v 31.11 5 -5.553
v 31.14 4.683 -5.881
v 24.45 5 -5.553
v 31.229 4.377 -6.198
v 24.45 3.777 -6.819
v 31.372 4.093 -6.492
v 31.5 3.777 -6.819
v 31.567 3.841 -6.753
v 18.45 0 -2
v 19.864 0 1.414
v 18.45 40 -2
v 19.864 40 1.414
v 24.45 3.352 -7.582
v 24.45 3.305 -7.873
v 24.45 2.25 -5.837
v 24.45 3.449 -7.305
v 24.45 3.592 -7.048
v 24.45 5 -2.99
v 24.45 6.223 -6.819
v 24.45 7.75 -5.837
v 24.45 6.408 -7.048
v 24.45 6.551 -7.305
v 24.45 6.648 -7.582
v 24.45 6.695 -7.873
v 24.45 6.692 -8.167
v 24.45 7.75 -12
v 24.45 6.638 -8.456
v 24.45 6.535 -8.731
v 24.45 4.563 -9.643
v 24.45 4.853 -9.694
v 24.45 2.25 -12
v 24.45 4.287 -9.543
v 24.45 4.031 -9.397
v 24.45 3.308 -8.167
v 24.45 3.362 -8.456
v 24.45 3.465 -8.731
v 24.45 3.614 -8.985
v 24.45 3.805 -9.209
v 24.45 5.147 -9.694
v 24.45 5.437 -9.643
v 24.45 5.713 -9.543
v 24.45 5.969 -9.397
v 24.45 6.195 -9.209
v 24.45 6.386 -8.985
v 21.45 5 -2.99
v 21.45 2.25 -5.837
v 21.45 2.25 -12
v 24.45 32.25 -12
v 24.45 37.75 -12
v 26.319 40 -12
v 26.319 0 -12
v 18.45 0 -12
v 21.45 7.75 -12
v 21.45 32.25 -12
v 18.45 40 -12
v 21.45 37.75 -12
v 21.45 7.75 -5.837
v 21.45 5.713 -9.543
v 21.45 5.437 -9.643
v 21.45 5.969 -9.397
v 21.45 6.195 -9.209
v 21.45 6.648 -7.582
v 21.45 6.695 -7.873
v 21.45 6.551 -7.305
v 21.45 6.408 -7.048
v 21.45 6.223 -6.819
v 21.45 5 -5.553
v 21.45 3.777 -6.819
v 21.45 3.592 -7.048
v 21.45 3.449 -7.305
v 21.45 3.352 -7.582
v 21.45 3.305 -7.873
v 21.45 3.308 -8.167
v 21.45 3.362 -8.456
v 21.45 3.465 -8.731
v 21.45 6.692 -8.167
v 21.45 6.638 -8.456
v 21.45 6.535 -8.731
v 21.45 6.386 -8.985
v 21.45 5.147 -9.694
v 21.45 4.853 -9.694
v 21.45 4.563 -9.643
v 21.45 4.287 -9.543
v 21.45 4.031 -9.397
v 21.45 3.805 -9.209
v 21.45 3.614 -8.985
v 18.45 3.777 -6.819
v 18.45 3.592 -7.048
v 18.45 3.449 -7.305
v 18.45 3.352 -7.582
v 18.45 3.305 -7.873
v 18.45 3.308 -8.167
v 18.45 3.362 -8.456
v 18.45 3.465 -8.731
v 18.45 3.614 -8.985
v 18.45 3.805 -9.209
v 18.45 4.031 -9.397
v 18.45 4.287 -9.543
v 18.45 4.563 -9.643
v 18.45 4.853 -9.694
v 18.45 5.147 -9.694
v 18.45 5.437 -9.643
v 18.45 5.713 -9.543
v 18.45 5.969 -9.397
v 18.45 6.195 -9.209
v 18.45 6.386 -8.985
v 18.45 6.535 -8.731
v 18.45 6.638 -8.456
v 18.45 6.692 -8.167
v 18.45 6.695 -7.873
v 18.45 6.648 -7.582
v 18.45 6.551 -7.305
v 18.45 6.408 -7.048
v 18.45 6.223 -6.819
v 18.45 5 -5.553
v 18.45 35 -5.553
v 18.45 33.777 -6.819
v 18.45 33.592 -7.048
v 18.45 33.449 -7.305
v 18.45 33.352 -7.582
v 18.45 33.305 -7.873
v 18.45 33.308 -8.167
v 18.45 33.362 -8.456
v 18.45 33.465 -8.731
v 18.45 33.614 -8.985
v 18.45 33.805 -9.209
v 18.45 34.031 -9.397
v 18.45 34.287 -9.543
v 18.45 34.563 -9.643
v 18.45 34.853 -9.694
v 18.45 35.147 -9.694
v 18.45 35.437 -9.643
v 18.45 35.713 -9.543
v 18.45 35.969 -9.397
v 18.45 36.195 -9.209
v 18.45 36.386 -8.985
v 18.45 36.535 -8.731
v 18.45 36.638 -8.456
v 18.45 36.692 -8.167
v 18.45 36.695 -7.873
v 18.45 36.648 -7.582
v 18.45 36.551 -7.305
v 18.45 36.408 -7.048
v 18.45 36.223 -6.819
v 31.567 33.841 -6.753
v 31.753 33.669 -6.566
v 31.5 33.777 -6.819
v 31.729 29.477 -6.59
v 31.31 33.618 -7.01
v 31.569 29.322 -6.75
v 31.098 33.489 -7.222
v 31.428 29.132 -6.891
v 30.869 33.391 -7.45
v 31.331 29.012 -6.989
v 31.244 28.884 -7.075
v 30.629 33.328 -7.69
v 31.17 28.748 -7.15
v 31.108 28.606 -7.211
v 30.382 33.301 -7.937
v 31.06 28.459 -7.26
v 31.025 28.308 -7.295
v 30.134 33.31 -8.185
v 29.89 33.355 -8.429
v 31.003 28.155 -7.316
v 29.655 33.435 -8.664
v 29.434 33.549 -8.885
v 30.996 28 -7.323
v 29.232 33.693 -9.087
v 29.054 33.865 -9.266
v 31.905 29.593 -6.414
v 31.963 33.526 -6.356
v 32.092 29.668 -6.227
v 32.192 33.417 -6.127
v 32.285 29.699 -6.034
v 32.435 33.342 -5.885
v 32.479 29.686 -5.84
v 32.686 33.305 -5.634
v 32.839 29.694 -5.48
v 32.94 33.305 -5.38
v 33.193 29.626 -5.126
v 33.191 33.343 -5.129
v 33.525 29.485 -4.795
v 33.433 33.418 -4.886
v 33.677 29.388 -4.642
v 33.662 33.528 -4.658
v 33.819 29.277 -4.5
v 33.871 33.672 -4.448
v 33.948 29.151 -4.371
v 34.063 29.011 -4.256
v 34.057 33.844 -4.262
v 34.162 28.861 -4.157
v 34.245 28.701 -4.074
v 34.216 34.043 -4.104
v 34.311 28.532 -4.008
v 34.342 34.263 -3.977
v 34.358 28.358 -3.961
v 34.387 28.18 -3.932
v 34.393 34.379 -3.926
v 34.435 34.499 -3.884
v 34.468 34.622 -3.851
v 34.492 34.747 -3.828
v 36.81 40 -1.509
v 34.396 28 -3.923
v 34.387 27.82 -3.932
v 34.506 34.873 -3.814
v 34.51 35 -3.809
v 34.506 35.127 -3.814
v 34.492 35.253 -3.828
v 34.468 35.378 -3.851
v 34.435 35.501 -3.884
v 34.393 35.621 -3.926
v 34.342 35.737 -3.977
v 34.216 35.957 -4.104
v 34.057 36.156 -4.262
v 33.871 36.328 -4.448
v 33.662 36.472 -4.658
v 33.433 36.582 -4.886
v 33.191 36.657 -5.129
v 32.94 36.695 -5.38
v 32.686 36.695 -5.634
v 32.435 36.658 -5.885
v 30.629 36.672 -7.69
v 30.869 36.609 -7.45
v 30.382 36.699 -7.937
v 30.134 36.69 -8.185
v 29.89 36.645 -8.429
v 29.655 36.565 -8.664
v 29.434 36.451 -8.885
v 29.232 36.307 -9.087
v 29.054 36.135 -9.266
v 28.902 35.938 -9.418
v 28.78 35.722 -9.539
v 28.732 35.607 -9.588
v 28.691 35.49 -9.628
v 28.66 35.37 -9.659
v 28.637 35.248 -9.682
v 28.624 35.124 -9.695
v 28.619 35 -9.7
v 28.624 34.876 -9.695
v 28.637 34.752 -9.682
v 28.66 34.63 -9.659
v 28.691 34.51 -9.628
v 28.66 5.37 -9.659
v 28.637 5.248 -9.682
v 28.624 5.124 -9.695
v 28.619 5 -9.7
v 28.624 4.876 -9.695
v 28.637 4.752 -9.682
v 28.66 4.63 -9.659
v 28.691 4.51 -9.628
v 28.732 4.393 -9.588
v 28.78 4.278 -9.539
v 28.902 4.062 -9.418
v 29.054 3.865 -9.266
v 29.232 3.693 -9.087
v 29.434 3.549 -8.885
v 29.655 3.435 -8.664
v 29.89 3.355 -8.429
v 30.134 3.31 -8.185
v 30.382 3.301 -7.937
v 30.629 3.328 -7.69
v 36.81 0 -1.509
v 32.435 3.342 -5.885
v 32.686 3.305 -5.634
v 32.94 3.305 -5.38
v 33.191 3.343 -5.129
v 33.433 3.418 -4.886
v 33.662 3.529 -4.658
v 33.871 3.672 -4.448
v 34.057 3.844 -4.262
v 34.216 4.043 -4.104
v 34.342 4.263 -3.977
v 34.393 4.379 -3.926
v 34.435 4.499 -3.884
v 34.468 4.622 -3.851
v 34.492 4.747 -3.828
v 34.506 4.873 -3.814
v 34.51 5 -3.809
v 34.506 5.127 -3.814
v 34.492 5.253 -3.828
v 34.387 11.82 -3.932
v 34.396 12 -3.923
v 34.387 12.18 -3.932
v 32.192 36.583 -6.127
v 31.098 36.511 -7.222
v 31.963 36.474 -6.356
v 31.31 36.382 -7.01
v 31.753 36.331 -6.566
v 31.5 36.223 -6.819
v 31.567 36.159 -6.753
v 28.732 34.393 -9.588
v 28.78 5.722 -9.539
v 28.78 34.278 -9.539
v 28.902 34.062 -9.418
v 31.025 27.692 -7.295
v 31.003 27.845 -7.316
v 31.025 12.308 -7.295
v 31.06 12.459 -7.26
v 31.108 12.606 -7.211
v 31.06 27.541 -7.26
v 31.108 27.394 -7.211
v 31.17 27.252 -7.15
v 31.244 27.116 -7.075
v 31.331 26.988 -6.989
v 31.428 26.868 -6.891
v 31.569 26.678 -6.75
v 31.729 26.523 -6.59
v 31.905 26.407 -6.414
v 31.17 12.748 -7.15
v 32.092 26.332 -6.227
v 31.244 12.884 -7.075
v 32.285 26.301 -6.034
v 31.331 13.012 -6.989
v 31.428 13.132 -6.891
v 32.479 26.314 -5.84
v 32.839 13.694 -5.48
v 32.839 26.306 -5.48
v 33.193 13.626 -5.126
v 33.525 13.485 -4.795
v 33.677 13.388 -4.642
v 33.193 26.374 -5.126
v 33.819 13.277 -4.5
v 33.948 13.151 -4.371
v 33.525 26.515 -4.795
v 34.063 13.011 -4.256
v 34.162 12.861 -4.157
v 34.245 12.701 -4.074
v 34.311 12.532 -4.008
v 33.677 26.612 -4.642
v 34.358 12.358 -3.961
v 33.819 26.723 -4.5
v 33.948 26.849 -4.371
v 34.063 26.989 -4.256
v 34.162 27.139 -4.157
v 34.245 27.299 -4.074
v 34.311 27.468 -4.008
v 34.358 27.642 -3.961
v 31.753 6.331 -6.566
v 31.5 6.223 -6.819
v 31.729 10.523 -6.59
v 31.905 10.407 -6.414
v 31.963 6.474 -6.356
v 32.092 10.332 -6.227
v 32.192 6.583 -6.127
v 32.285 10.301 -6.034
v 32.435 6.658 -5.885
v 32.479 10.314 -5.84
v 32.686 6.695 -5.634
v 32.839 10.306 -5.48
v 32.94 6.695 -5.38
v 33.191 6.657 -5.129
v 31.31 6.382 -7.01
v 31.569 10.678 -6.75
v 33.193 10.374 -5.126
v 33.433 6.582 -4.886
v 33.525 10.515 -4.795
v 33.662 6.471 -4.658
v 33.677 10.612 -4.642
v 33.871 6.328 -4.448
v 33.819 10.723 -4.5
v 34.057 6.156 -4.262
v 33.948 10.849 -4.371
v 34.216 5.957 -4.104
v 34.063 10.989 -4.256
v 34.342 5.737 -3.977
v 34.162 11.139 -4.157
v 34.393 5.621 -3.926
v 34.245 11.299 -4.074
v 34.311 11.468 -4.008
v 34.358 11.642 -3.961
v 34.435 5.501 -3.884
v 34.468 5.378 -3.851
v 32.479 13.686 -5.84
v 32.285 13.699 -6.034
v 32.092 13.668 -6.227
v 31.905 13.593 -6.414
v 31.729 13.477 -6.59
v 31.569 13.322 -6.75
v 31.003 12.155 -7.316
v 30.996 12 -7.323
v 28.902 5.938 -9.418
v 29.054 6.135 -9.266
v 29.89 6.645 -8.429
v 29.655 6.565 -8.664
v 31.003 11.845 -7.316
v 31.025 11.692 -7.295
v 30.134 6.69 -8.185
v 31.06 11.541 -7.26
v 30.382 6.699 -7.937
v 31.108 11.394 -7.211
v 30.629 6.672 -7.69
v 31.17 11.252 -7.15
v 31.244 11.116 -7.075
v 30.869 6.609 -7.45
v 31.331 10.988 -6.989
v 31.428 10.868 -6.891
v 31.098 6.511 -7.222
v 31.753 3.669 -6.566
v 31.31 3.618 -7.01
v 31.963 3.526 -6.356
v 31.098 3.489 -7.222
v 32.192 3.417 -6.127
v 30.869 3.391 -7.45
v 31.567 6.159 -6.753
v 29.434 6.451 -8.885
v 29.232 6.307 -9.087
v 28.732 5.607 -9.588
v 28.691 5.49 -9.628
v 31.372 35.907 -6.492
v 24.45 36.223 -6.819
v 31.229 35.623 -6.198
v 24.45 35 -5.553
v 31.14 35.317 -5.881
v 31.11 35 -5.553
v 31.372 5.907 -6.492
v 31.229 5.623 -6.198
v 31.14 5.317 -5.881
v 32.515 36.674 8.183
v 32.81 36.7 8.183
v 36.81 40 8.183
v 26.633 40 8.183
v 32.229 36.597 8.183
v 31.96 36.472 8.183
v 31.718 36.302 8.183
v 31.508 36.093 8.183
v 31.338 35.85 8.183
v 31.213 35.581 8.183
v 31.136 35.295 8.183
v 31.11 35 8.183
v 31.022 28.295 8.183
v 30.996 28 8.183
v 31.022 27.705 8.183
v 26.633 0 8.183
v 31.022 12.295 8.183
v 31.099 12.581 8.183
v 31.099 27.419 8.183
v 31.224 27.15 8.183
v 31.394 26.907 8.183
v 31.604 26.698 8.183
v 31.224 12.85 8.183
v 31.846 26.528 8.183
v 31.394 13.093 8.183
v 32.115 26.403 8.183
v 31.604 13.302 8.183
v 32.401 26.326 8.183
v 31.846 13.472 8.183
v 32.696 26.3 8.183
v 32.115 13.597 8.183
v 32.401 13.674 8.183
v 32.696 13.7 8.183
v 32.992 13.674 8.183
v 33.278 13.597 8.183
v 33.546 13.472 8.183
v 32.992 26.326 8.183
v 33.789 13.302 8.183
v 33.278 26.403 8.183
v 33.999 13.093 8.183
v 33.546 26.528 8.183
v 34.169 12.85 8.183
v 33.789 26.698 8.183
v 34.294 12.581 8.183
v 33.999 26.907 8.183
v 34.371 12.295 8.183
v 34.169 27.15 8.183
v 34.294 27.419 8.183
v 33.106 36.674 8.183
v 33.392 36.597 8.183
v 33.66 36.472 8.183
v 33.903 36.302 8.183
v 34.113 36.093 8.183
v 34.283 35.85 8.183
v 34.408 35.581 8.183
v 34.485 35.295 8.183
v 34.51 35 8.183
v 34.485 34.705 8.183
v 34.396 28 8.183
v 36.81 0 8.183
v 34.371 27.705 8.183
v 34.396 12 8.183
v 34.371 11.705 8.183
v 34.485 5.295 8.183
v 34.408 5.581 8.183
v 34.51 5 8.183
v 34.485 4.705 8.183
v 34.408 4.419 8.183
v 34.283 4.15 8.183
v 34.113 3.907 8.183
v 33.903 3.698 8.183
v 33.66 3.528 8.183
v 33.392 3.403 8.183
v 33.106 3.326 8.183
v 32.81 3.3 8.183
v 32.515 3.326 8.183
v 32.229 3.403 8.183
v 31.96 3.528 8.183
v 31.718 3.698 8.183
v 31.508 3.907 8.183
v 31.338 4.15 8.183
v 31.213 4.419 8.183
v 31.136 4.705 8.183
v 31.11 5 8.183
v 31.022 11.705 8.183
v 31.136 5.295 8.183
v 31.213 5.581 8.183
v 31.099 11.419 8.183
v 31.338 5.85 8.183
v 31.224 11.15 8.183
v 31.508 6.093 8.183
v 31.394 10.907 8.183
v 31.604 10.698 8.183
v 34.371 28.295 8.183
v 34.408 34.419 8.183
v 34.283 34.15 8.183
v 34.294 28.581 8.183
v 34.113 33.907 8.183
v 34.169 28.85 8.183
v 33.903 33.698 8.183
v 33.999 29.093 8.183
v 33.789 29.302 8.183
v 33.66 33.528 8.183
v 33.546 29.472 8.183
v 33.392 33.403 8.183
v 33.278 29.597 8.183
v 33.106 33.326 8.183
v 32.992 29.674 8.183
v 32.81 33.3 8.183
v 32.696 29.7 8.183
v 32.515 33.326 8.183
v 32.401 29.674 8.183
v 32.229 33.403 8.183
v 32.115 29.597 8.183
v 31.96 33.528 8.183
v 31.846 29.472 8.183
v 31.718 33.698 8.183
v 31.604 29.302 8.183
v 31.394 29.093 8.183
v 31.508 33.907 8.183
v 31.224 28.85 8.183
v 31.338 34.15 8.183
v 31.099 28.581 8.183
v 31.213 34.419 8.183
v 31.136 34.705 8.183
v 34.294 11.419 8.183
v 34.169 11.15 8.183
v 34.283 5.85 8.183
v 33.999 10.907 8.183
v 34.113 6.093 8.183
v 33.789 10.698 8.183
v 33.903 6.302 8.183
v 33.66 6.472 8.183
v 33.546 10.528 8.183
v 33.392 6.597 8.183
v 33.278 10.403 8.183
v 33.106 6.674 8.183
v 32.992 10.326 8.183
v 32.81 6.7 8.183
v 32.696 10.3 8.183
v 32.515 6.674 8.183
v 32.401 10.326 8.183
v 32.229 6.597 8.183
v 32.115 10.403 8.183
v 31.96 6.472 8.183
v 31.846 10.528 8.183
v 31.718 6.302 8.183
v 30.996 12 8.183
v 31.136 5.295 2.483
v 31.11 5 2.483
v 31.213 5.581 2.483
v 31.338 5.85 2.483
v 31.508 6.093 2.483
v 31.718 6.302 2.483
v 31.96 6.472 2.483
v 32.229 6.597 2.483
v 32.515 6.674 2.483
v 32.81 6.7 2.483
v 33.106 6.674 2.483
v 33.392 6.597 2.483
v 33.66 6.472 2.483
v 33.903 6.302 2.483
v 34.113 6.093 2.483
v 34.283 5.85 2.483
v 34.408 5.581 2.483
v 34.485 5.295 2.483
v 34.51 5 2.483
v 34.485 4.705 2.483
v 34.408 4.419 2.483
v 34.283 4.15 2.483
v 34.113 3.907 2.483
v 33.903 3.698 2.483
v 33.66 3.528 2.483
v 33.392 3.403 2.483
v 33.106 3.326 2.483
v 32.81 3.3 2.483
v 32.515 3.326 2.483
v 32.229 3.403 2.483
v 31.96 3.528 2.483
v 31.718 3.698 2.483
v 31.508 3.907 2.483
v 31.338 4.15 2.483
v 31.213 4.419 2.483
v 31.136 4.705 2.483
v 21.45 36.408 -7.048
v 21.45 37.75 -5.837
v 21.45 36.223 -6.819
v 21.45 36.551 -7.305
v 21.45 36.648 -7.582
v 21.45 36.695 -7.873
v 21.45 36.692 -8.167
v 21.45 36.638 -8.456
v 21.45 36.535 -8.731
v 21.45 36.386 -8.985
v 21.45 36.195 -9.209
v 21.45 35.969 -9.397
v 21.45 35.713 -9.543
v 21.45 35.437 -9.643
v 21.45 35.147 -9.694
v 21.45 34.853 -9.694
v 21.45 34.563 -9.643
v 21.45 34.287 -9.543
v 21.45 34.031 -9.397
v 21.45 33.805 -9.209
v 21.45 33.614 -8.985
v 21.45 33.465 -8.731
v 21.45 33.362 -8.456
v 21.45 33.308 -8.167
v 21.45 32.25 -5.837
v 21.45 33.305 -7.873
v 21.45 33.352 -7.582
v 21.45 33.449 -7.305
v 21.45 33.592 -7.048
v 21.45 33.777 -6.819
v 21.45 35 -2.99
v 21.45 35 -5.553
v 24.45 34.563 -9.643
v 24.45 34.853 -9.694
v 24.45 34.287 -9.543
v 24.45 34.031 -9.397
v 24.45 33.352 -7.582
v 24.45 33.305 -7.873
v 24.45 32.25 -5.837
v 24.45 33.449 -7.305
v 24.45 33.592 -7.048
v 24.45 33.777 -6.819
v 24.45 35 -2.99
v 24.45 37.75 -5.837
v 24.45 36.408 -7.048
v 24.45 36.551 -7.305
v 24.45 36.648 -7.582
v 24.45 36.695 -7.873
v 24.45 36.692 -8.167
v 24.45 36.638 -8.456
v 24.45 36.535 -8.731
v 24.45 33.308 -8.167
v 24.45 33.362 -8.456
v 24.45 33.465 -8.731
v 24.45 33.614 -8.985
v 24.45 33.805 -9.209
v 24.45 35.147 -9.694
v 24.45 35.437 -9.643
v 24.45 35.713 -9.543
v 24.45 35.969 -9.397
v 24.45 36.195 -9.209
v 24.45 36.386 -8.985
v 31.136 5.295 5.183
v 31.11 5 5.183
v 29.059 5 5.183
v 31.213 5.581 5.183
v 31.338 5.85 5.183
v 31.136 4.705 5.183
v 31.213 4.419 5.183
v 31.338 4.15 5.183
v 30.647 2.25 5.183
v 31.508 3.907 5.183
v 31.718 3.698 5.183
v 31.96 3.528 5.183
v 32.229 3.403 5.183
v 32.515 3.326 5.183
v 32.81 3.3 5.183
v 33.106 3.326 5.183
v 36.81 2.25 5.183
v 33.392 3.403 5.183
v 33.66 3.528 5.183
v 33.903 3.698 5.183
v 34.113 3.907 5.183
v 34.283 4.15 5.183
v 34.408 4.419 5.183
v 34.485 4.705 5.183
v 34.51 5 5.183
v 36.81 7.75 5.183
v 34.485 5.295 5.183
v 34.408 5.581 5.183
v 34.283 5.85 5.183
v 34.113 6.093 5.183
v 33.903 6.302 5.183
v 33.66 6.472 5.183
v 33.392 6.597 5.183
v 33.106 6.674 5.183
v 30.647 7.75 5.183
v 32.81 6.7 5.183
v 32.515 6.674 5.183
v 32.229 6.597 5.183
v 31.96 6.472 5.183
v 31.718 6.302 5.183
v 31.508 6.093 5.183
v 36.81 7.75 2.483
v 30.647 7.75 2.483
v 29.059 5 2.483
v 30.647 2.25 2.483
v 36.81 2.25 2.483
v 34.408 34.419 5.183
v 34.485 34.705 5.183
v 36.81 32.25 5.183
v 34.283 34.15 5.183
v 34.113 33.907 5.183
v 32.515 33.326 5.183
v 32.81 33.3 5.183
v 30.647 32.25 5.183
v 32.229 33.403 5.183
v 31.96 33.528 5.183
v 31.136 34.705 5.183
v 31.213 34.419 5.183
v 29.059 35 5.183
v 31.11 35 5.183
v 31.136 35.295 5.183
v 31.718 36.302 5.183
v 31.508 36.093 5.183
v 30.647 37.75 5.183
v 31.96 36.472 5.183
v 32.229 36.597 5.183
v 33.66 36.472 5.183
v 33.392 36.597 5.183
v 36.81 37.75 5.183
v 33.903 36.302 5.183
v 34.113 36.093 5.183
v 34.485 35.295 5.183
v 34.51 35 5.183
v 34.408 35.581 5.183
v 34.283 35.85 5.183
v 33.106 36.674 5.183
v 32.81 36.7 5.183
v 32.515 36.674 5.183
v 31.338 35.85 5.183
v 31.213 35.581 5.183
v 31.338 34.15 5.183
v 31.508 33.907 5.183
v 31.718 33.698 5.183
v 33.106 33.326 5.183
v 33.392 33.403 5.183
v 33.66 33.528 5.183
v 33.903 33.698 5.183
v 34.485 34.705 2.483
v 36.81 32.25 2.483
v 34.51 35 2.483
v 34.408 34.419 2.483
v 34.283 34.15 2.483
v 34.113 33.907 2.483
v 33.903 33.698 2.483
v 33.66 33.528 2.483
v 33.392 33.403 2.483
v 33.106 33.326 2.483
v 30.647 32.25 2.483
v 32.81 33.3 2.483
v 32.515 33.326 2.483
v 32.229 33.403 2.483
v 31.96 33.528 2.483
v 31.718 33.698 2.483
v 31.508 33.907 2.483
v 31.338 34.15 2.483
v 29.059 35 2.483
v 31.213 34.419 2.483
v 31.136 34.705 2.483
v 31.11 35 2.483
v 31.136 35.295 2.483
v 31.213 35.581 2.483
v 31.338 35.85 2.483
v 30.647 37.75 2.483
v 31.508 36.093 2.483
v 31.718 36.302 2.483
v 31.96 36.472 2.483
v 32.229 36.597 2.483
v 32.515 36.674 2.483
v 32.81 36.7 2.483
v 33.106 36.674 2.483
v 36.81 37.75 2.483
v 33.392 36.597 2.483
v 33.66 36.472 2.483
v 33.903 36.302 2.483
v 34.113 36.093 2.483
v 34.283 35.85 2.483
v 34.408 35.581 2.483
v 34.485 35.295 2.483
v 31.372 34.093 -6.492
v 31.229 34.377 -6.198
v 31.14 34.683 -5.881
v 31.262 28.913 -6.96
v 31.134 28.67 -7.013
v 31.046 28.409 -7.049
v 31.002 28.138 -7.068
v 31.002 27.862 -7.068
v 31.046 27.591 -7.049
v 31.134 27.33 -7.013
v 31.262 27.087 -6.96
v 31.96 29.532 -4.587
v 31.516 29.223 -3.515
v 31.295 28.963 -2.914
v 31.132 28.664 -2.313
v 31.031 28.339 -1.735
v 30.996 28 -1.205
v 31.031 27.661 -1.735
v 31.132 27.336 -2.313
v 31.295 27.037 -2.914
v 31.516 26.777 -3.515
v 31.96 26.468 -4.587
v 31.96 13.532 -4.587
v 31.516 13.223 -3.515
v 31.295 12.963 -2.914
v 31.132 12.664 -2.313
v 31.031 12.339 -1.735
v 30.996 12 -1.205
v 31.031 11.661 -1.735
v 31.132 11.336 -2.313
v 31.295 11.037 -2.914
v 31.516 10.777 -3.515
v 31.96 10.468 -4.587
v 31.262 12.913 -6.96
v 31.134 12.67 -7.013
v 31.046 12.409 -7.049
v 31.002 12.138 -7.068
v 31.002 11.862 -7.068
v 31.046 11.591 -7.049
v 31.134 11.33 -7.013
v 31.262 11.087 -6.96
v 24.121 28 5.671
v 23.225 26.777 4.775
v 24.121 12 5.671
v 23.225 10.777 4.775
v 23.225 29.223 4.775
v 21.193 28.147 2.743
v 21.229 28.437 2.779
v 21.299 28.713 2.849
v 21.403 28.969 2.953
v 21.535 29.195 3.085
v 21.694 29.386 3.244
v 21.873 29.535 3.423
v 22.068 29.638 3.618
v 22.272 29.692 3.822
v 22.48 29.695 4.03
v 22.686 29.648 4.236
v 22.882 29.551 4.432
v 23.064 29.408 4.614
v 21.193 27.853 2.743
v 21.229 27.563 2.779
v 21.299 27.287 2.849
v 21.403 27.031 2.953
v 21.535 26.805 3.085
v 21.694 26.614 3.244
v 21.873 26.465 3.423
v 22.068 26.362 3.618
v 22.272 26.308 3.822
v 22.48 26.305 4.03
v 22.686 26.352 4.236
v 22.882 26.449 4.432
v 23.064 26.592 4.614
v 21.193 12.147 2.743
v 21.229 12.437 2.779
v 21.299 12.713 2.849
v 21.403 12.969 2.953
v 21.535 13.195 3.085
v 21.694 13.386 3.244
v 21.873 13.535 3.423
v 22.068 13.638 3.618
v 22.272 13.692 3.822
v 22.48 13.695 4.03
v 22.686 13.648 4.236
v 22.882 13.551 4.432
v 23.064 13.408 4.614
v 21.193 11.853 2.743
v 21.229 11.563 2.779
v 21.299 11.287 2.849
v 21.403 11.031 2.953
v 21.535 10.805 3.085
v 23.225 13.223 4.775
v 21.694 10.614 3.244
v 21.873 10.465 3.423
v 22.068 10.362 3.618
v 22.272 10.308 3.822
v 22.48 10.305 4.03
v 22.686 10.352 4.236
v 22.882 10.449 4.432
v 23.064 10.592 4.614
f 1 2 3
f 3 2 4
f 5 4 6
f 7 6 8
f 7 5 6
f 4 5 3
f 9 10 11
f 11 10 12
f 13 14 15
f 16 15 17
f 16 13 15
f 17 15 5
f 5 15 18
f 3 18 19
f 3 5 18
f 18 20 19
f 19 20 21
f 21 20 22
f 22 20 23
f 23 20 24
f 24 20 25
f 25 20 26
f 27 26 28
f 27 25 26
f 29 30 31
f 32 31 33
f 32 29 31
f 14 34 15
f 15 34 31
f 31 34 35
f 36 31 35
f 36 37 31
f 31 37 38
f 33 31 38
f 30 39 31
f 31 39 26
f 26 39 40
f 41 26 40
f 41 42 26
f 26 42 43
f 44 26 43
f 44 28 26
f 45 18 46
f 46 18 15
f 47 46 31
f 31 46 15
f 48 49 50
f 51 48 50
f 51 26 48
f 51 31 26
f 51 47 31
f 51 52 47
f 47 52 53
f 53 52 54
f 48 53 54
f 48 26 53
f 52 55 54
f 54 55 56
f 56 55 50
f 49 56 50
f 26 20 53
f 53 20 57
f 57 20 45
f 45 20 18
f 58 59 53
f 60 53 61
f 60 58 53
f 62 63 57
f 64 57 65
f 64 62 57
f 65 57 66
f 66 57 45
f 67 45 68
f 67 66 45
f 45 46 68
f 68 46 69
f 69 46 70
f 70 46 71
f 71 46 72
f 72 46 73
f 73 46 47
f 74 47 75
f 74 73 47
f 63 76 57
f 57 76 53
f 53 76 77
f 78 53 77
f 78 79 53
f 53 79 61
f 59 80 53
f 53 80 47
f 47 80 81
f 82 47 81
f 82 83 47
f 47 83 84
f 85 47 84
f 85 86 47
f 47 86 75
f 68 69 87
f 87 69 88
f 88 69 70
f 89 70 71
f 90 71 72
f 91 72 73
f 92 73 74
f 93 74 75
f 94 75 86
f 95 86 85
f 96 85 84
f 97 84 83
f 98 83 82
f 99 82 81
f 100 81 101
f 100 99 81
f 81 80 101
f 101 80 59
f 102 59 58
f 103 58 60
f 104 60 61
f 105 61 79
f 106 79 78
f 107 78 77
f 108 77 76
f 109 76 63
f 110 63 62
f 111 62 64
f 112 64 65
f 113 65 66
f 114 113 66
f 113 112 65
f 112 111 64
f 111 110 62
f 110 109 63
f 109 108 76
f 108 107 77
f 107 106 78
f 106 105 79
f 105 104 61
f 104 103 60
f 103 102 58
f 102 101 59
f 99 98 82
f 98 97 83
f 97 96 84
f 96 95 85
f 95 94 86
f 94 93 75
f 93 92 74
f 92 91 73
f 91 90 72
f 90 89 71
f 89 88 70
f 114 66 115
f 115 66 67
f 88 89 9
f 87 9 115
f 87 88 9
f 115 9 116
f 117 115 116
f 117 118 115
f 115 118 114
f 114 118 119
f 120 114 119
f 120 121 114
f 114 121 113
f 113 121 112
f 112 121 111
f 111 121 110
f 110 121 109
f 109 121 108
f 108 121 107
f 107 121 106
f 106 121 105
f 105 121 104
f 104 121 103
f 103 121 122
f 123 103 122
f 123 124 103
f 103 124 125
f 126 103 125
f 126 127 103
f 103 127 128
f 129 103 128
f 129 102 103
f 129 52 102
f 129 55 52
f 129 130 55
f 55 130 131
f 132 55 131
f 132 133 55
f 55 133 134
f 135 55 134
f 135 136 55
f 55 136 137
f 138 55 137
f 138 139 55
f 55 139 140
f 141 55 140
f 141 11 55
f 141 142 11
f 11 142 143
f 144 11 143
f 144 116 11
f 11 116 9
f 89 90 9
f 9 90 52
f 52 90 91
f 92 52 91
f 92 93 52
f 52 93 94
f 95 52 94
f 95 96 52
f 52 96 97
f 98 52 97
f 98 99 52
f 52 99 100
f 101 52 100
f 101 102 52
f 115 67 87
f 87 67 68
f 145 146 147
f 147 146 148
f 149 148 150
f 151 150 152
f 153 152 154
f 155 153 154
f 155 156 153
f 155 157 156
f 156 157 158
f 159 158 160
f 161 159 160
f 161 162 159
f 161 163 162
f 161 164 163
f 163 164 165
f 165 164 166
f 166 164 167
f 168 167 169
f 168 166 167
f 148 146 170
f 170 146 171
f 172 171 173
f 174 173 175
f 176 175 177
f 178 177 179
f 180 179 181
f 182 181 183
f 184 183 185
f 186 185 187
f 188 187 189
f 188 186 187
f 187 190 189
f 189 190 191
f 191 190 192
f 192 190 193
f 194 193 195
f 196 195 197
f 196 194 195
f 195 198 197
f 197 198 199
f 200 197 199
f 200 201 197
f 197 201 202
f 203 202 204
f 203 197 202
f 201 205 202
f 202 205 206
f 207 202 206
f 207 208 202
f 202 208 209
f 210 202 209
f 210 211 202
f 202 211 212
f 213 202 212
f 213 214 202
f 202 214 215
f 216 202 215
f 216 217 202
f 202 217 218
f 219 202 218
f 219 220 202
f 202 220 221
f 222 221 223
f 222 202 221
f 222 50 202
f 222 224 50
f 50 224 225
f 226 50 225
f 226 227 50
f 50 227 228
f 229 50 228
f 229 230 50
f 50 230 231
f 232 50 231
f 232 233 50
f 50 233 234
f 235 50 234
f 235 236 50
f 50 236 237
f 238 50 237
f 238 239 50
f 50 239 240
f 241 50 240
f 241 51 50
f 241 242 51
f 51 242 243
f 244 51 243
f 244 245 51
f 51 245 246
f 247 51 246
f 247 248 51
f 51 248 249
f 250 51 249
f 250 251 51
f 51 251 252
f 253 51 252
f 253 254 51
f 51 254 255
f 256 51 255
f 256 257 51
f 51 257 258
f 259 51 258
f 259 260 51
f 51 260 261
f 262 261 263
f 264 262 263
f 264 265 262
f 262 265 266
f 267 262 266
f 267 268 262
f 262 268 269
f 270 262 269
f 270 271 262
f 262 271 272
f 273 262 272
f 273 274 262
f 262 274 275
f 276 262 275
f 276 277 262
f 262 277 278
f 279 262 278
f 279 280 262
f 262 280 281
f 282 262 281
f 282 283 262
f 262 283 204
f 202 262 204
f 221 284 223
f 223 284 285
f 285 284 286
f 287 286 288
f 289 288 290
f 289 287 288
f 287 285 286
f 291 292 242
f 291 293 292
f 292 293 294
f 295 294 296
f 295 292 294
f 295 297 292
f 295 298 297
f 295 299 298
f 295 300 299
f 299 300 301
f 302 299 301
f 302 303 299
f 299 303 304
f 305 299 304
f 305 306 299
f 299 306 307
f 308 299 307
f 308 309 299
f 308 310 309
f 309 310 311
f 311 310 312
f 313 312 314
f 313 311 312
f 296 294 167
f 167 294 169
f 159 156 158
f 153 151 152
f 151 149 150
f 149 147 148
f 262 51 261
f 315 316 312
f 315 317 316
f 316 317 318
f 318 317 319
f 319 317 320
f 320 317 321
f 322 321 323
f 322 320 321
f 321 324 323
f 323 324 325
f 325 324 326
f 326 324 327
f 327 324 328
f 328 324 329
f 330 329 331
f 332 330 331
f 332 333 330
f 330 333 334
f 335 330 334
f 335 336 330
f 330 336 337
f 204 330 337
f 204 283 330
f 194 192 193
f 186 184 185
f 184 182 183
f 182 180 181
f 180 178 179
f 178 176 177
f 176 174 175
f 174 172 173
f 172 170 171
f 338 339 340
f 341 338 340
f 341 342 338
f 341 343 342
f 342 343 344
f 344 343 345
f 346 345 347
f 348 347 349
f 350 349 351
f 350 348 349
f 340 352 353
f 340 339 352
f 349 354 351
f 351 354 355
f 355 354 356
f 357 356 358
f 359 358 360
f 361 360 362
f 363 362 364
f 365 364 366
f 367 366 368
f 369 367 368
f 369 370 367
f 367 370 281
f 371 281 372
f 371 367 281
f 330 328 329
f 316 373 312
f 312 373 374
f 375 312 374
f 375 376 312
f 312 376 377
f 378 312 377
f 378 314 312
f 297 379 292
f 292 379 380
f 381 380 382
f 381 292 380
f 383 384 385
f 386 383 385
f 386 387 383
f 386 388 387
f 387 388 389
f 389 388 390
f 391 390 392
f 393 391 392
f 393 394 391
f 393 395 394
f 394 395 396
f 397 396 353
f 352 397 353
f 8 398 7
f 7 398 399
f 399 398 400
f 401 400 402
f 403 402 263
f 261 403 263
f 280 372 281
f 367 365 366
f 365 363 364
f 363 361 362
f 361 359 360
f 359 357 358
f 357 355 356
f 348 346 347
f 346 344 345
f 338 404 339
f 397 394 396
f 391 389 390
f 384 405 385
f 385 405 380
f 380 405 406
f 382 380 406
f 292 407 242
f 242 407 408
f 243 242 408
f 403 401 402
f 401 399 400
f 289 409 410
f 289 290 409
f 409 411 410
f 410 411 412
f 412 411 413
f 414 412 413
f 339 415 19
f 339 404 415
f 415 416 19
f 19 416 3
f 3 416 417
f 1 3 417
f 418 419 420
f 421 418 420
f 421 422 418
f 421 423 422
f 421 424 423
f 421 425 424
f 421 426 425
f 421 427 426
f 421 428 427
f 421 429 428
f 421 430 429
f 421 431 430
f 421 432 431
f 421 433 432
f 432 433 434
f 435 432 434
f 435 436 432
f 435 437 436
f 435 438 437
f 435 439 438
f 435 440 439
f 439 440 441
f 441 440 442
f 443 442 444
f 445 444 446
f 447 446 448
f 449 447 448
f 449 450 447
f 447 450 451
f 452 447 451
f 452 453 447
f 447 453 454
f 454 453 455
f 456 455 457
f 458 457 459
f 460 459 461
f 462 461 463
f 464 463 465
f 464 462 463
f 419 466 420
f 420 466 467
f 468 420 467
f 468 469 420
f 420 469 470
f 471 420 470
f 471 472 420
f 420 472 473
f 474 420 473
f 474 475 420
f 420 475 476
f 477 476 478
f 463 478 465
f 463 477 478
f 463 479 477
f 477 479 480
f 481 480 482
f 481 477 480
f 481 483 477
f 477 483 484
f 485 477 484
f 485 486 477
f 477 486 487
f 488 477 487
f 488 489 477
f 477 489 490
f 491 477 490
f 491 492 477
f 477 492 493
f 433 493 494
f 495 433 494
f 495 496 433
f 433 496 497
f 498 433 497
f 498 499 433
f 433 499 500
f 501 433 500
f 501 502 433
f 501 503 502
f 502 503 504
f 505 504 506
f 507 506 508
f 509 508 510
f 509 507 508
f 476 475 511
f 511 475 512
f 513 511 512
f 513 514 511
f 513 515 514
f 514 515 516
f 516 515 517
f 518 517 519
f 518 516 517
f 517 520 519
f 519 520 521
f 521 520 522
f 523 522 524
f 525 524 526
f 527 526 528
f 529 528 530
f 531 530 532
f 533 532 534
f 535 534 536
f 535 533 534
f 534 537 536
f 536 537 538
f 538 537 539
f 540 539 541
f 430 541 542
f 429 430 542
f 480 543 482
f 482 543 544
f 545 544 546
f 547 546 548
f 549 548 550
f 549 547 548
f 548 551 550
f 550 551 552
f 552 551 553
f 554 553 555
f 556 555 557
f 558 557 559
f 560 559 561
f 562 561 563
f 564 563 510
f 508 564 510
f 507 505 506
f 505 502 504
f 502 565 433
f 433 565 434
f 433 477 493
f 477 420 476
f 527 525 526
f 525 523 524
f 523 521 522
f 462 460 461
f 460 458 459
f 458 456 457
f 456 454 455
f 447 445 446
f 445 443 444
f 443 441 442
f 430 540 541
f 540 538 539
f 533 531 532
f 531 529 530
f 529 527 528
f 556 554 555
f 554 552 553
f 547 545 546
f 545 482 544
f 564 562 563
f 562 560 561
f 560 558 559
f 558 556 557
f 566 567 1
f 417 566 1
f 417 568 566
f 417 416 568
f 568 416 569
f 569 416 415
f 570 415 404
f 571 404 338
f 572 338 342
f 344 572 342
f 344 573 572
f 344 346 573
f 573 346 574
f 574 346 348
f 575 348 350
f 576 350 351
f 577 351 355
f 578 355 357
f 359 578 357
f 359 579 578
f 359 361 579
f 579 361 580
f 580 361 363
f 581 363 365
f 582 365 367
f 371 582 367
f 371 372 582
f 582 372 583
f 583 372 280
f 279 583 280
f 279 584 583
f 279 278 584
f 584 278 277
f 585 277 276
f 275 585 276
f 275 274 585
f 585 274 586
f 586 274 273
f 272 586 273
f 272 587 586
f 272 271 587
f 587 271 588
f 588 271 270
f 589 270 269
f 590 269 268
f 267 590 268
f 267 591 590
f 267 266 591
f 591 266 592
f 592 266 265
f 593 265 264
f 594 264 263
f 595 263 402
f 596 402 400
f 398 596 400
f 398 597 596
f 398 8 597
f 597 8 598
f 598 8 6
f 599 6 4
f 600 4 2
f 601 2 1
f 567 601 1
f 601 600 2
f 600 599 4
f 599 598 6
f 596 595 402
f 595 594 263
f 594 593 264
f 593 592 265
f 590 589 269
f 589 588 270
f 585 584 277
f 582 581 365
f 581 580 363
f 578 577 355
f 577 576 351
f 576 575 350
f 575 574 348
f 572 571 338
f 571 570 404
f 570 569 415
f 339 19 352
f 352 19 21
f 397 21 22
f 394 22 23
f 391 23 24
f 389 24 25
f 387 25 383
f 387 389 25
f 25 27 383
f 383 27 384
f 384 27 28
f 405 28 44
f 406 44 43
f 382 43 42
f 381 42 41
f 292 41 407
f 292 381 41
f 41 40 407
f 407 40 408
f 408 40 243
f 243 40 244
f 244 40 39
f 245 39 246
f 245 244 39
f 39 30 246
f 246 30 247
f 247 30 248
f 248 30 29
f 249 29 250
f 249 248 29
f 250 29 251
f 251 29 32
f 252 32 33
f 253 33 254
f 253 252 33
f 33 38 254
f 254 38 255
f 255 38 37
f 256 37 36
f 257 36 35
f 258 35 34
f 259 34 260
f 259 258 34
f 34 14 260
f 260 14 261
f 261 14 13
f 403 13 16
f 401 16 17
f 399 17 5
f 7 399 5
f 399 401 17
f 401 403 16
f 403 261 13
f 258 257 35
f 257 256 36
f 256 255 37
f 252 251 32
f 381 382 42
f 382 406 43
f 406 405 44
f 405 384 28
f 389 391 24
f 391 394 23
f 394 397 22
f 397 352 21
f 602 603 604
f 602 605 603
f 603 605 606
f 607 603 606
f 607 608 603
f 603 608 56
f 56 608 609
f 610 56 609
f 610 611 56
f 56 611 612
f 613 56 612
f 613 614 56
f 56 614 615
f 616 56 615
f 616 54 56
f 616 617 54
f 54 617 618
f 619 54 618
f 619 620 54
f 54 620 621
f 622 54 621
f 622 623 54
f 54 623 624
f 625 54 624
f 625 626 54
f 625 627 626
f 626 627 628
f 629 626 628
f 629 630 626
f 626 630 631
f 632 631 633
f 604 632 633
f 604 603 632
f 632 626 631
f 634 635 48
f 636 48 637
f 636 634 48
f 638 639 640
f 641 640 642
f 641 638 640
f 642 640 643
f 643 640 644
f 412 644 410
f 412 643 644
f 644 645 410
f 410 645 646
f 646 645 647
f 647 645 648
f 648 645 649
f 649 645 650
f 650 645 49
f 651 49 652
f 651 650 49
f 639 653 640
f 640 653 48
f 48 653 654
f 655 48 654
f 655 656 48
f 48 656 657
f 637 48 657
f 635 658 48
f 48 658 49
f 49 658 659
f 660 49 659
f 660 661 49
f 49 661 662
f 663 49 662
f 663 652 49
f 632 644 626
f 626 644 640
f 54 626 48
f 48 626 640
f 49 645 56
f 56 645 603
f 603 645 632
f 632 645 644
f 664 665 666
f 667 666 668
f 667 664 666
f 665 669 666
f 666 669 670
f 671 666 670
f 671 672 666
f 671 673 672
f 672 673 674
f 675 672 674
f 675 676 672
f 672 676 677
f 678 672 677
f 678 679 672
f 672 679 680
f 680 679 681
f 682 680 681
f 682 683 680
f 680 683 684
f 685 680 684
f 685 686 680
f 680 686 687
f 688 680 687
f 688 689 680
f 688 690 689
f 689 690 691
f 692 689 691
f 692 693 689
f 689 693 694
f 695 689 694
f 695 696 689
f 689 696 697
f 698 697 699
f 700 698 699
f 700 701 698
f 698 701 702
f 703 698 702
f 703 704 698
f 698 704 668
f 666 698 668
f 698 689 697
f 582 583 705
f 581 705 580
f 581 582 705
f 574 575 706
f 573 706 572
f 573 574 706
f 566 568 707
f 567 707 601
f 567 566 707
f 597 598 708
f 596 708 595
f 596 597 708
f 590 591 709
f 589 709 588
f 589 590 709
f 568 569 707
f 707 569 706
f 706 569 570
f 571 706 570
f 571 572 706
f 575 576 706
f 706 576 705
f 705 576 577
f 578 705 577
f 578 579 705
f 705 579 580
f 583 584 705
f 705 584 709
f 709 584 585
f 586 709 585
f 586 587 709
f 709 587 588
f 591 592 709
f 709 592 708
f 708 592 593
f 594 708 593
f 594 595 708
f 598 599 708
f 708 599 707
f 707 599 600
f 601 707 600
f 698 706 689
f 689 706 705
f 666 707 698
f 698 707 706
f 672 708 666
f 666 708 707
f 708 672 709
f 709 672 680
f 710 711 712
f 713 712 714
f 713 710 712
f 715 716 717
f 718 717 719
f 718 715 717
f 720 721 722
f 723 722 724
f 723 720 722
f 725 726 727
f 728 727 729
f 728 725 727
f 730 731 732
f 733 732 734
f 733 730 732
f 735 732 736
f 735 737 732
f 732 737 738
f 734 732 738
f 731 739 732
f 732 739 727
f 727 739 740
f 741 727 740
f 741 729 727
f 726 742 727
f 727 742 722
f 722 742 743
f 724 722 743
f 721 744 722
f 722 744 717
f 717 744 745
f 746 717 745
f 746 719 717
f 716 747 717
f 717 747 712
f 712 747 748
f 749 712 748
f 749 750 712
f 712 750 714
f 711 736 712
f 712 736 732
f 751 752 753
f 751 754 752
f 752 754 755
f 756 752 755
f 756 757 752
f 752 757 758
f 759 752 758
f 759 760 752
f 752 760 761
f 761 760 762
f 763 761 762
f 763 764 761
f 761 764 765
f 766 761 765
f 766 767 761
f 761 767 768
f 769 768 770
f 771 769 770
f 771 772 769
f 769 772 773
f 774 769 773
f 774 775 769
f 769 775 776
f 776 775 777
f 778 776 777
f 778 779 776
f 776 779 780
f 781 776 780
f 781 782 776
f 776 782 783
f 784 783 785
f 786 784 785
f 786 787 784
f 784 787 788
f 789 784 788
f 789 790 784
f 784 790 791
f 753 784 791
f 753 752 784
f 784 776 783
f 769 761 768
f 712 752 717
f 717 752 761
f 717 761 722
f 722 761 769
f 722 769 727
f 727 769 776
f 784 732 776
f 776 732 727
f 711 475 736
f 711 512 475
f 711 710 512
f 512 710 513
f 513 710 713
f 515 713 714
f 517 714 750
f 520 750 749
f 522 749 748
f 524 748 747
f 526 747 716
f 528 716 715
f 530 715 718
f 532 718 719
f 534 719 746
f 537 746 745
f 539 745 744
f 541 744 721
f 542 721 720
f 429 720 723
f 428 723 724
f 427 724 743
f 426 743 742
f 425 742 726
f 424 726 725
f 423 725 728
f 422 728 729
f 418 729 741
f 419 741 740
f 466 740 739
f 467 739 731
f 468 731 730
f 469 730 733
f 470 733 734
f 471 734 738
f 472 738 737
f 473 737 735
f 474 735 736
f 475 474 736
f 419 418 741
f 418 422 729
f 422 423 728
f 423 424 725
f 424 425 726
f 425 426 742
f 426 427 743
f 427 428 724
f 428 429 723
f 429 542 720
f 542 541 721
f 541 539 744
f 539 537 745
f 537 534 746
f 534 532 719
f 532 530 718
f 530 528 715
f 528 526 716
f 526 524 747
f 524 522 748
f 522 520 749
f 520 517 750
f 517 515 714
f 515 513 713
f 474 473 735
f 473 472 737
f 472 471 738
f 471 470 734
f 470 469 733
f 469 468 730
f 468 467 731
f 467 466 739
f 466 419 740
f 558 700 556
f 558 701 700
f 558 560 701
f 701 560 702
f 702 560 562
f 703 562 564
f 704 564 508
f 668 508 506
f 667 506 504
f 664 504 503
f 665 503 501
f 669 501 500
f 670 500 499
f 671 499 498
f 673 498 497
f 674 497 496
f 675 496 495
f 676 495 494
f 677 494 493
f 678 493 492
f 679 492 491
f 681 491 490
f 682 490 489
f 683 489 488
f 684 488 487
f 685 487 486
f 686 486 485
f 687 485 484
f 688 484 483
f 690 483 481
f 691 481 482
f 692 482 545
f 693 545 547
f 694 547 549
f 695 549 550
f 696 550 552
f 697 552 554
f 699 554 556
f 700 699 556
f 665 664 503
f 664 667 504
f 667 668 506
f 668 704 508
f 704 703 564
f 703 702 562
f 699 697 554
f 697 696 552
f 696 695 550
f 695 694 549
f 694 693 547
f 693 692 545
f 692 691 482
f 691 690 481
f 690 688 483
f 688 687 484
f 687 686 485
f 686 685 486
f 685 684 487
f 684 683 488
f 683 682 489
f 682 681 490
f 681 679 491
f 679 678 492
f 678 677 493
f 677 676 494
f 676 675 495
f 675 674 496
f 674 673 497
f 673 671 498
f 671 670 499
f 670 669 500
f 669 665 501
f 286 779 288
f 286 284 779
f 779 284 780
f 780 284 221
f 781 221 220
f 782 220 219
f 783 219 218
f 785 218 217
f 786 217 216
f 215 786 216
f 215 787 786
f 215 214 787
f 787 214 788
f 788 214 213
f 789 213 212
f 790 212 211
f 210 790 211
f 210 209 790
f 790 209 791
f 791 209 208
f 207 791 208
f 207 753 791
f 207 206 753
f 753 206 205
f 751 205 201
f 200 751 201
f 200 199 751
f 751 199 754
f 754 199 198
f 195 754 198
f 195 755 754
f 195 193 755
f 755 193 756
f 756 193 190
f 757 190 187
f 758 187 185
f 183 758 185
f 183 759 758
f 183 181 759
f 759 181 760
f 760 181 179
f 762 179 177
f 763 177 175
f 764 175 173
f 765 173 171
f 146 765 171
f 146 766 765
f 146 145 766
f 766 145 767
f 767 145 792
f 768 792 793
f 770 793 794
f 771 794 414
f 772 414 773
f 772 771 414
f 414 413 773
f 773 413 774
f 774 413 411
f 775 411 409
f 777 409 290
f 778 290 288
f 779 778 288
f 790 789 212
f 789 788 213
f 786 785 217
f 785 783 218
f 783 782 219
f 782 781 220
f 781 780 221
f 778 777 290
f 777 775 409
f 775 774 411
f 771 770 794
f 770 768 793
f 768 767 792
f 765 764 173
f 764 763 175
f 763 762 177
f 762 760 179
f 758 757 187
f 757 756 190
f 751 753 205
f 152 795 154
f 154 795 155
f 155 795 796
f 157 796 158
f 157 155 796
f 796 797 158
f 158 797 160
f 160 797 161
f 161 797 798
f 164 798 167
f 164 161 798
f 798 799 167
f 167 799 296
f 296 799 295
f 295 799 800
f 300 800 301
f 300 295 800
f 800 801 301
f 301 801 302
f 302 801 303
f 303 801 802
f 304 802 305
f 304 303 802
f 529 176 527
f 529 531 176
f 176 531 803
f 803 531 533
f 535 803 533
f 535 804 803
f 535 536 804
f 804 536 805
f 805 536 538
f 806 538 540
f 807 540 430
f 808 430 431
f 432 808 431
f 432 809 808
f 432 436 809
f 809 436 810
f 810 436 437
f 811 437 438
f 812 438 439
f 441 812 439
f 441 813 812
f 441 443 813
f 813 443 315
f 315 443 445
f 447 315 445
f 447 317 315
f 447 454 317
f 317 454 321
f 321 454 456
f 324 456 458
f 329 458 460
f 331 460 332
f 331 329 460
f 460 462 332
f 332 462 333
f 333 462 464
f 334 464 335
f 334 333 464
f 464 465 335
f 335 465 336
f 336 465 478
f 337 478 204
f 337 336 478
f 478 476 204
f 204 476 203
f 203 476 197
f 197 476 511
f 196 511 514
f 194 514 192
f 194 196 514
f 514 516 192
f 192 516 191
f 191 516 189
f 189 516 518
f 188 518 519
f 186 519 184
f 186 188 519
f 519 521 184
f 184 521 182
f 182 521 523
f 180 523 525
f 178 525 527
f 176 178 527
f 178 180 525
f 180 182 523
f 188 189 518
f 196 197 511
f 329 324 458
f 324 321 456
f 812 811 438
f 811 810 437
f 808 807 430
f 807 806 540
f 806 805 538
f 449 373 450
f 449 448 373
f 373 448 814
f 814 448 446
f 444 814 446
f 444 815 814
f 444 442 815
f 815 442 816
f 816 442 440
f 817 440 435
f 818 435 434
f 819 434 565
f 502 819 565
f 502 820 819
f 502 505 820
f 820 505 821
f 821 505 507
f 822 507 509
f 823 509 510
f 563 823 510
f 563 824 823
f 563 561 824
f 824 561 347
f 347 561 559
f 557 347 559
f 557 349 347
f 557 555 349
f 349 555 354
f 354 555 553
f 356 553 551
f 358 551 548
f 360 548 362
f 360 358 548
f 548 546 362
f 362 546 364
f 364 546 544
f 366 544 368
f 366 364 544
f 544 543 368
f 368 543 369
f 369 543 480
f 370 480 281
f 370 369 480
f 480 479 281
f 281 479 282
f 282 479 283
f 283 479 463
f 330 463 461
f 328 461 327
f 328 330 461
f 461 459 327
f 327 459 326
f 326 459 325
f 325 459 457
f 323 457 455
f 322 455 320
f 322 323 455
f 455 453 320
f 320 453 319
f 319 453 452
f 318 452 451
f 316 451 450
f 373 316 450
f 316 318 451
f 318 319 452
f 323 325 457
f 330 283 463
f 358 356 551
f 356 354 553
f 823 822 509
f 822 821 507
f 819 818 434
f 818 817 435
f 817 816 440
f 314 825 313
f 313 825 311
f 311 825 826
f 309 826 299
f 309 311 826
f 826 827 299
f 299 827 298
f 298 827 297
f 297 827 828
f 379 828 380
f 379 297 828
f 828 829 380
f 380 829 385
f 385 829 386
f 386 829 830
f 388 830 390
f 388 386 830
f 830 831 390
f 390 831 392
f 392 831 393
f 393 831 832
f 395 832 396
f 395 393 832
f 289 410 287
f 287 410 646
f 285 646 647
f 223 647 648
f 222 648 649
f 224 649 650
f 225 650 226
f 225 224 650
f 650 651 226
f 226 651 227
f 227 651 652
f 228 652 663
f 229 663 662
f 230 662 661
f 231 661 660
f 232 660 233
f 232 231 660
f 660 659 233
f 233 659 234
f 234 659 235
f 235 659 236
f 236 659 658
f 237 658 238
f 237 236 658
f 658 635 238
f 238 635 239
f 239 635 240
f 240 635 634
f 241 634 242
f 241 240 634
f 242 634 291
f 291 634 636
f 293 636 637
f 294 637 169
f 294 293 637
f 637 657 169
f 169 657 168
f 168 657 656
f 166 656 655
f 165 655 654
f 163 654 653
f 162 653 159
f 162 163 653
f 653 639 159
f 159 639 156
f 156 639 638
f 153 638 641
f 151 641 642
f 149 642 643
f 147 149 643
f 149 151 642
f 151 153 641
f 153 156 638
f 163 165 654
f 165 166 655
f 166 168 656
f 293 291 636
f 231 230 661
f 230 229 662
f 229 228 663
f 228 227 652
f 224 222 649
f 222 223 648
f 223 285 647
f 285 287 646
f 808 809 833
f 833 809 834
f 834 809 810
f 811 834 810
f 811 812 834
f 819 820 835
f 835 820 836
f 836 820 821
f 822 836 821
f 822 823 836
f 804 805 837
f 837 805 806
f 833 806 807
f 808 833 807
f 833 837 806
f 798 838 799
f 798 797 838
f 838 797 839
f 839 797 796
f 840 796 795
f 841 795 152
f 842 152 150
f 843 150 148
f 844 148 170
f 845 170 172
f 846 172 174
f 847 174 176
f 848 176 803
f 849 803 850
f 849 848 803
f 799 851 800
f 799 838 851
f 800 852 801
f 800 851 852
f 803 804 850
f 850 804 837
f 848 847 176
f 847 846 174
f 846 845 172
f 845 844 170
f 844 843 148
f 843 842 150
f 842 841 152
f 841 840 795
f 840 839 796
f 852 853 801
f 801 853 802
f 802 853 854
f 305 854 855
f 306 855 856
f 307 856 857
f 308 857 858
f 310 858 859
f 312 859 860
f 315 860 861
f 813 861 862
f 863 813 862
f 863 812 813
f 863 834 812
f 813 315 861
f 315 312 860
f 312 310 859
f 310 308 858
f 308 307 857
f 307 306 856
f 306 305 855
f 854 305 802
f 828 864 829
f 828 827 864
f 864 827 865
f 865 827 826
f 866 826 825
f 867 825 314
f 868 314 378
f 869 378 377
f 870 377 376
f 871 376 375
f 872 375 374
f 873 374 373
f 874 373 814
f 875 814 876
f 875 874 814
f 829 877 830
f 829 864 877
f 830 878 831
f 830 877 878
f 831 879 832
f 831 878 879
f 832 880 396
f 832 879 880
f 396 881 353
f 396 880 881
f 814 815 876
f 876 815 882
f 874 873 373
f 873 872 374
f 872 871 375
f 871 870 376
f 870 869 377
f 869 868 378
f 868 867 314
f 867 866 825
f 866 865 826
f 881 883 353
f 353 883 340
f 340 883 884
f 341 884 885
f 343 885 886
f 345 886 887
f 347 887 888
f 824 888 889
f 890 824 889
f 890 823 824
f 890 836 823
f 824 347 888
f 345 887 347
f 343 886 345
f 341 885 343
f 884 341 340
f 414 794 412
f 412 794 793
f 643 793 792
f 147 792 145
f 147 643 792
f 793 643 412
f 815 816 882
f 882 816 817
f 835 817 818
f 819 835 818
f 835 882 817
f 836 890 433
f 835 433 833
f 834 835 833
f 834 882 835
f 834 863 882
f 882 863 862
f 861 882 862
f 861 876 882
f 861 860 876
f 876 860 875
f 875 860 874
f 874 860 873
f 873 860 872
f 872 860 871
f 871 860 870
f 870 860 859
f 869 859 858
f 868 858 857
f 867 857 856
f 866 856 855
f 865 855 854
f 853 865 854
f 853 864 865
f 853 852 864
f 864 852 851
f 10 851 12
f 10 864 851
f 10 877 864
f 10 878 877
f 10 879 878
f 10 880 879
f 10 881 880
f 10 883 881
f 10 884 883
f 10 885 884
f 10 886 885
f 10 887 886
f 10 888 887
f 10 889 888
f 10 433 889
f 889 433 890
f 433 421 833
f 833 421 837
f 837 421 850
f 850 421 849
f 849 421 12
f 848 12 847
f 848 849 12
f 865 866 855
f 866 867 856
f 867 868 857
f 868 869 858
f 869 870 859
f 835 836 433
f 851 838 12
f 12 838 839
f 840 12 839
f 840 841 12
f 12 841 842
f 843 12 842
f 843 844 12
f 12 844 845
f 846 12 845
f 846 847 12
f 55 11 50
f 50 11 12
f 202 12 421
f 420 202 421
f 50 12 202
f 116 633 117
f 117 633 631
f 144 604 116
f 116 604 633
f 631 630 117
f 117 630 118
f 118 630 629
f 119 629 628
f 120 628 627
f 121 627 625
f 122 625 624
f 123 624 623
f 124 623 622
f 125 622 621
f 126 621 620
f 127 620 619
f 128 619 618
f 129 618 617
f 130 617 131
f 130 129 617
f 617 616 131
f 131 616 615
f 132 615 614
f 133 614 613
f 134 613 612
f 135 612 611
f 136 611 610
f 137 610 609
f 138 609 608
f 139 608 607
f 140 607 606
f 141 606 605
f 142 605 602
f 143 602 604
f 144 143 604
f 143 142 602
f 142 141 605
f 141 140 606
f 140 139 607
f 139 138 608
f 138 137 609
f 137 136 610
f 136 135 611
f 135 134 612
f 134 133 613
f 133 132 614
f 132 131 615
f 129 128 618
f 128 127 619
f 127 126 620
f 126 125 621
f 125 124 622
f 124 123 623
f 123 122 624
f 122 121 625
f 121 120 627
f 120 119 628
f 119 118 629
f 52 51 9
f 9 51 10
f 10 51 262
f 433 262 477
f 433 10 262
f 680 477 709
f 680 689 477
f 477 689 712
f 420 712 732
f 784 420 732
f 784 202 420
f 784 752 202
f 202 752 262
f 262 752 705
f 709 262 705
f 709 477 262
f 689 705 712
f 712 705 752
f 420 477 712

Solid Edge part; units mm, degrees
sketch "Sketch1" plane through (0, 0, 0) normal (0, -1, 0) x (1, 0, 0)
  line L0 (18.45, -2) -> (18.45, -12)
  line L1 (18.45, -12) -> (36.8105, -12)
  line L2 (36.8105, -12) -> (36.8105, 8.183)
  line L3 (36.8105, 8.183) -> (26.633, 8.183)
  line L4 (26.633, 8.183) -> (19.8642, 1.4142)
  line L5 (19.8642, 1.4142) -> (18.45, -2)
extrude "Protrusion1" add sketch "Sketch1" against normal blind 40
sketch "Sketch2" plane through (18.45, 20, -5.3442) normal (-1, 0, 0) x (0, -1, 0)
  line L0 (16.2229, -1.4749) -> (15, -0.2085)
  line L1 (15, -0.2085) -> (13.7771, -1.4749)
  arc A0 (13.7771, -1.4749) -> (16.2229, -1.4749) centre (15, -2.6558) ccw
  line L2 (-16.2229, -1.4749) -> (-15, -0.2085)
  line L3 (-15, -0.2085) -> (-13.7771, -1.4749)
  arc A1 (-13.7771, -1.4749) -> (-16.2229, -1.4749) centre (-15, -2.6558) cw
extrude "Cutout1" cut sketch "Sketch2" against normal up to next
sketch "Sketch3" plane through (23.5609, 20, 5.1109) normal (-0.7071, 0, 0.7071) x (0.7071, 0, 0.7071)
  line L0 (-0.4746, -9.2229) -> (0.7918, -8)
  line L1 (0.7918, -8) -> (-0.4746, -6.7771)
  arc A0 (-0.4746, -6.7771) -> (-0.4746, -9.2229) centre (-1.6555, -8) ccw
  line L2 (-0.4746, 9.2229) -> (0.7918, 8)
  line L3 (0.7918, 8) -> (-0.4746, 6.7771)
  arc A1 (-0.4746, 6.7771) -> (-0.4746, 9.2229) centre (-1.6555, 8) cw
extrude "ExtrudedCutout_2" cut sketch "Sketch3" against normal blind 30
sketch "Sketch4" plane through (32.7412, 20, 8.183) normal (0, 0, 1) x (0, 1, 0)
  circle A0 centre (-8, 0.0447) radius 1.7
  circle A1 centre (8, 0.0447) radius 1.7
  dimension "D1" = 8
  dimension "D2" = 3.4
  dimension "D3" = 12
  dimension "D4" = 12
extrude "Cutout2" cut sketch "Sketch4" against normal through all
sketch "Sketch5" plane through (29.8265, 40, -2.4295) normal (0, 1, 0) x (1, 0, 0)
  line L0 (-3.5071, 9.5705) -> (6.984, 9.5705)
  line L1 (6.984, 9.5705) -> (6.984, -0.9206)
  line L2 (6.984, -0.9206) -> (-3.5071, 9.5705)
extrude "ExtrudedCutout_5" cut sketch "Sketch5" against normal blind 40
sketch "Sketch6" plane through (31.7217, 20, 8.183) normal (0, 0, 1) x (0, 1, 0)
  circle A0 centre (15, -1.0888) radius 1.7
  circle A1 centre (-15, -1.0888) radius 1.7
  dimension "D1" = 3.4
  dimension "D2" = 5
  dimension "D3" = 3.4
  dimension "D4" = 5
extrude "ExtrudedCutout_11" cut sketch "Sketch6" against normal blind 22
sketch "Sketch7" plane through (31.7217, 20, 5.183) normal (0, 0, 1) x (-1, 0, 0)
  line L0 (-10.8423, -17.75) -> (1.0752, -17.75)
  line L1 (1.0752, -17.75) -> (2.6629, -15)
  line L2 (2.6629, -15) -> (1.0752, -12.25)
  line L3 (1.0752, -12.25) -> (-10.8423, -12.25)
  line L4 (-10.8423, -12.25) -> (-10.8423, -17.75)
  line L5 (-10.8423, 17.75) -> (1.0752, 17.75)
  line L6 (1.0752, 17.75) -> (2.6629, 15)
  line L7 (2.6629, 15) -> (1.0752, 12.25)
  line L8 (1.0752, 12.25) -> (-10.8423, 12.25)
  line L9 (-10.8423, 12.25) -> (-10.8423, 17.75)
  dimension "D1" = 5.5
  dimension "D2" = 20
extrude "ExtrudedCutout_12" cut sketch "Sketch7" against normal blind 2.7
sketch "Sketch8" plane through (21.45, 20, -7) normal (-1, 0, 0) x (0, -1, 0)
  line L0 (-17.75, 1.1626) -> (-17.75, -12.7107)
  line L1 (-17.75, -12.7107) -> (-12.25, -12.7107)
  line L2 (-12.25, -12.7107) -> (-12.25, 1.1626)
  line L3 (-15, 4.0103) -> (-12.25, 1.1626)
  line L4 (-17.75, 1.1626) -> (-15, 4.0103)
  line L5 (17.75, 1.1626) -> (17.75, -12.7107)
  line L6 (17.75, -12.7107) -> (12.25, -12.7107)
  line L7 (12.25, -12.7107) -> (12.25, 1.1626)
  line L8 (15, 4.0103) -> (12.25, 1.1626)
  line L9 (17.75, 1.1626) -> (15, 4.0103)
  dimension "D1" = 5.5
  dimension "D2" = 20
  dimension "D3" = 5.5
extrude "ExtrudedCutout_13" cut sketch "Sketch8" against normal blind 3
